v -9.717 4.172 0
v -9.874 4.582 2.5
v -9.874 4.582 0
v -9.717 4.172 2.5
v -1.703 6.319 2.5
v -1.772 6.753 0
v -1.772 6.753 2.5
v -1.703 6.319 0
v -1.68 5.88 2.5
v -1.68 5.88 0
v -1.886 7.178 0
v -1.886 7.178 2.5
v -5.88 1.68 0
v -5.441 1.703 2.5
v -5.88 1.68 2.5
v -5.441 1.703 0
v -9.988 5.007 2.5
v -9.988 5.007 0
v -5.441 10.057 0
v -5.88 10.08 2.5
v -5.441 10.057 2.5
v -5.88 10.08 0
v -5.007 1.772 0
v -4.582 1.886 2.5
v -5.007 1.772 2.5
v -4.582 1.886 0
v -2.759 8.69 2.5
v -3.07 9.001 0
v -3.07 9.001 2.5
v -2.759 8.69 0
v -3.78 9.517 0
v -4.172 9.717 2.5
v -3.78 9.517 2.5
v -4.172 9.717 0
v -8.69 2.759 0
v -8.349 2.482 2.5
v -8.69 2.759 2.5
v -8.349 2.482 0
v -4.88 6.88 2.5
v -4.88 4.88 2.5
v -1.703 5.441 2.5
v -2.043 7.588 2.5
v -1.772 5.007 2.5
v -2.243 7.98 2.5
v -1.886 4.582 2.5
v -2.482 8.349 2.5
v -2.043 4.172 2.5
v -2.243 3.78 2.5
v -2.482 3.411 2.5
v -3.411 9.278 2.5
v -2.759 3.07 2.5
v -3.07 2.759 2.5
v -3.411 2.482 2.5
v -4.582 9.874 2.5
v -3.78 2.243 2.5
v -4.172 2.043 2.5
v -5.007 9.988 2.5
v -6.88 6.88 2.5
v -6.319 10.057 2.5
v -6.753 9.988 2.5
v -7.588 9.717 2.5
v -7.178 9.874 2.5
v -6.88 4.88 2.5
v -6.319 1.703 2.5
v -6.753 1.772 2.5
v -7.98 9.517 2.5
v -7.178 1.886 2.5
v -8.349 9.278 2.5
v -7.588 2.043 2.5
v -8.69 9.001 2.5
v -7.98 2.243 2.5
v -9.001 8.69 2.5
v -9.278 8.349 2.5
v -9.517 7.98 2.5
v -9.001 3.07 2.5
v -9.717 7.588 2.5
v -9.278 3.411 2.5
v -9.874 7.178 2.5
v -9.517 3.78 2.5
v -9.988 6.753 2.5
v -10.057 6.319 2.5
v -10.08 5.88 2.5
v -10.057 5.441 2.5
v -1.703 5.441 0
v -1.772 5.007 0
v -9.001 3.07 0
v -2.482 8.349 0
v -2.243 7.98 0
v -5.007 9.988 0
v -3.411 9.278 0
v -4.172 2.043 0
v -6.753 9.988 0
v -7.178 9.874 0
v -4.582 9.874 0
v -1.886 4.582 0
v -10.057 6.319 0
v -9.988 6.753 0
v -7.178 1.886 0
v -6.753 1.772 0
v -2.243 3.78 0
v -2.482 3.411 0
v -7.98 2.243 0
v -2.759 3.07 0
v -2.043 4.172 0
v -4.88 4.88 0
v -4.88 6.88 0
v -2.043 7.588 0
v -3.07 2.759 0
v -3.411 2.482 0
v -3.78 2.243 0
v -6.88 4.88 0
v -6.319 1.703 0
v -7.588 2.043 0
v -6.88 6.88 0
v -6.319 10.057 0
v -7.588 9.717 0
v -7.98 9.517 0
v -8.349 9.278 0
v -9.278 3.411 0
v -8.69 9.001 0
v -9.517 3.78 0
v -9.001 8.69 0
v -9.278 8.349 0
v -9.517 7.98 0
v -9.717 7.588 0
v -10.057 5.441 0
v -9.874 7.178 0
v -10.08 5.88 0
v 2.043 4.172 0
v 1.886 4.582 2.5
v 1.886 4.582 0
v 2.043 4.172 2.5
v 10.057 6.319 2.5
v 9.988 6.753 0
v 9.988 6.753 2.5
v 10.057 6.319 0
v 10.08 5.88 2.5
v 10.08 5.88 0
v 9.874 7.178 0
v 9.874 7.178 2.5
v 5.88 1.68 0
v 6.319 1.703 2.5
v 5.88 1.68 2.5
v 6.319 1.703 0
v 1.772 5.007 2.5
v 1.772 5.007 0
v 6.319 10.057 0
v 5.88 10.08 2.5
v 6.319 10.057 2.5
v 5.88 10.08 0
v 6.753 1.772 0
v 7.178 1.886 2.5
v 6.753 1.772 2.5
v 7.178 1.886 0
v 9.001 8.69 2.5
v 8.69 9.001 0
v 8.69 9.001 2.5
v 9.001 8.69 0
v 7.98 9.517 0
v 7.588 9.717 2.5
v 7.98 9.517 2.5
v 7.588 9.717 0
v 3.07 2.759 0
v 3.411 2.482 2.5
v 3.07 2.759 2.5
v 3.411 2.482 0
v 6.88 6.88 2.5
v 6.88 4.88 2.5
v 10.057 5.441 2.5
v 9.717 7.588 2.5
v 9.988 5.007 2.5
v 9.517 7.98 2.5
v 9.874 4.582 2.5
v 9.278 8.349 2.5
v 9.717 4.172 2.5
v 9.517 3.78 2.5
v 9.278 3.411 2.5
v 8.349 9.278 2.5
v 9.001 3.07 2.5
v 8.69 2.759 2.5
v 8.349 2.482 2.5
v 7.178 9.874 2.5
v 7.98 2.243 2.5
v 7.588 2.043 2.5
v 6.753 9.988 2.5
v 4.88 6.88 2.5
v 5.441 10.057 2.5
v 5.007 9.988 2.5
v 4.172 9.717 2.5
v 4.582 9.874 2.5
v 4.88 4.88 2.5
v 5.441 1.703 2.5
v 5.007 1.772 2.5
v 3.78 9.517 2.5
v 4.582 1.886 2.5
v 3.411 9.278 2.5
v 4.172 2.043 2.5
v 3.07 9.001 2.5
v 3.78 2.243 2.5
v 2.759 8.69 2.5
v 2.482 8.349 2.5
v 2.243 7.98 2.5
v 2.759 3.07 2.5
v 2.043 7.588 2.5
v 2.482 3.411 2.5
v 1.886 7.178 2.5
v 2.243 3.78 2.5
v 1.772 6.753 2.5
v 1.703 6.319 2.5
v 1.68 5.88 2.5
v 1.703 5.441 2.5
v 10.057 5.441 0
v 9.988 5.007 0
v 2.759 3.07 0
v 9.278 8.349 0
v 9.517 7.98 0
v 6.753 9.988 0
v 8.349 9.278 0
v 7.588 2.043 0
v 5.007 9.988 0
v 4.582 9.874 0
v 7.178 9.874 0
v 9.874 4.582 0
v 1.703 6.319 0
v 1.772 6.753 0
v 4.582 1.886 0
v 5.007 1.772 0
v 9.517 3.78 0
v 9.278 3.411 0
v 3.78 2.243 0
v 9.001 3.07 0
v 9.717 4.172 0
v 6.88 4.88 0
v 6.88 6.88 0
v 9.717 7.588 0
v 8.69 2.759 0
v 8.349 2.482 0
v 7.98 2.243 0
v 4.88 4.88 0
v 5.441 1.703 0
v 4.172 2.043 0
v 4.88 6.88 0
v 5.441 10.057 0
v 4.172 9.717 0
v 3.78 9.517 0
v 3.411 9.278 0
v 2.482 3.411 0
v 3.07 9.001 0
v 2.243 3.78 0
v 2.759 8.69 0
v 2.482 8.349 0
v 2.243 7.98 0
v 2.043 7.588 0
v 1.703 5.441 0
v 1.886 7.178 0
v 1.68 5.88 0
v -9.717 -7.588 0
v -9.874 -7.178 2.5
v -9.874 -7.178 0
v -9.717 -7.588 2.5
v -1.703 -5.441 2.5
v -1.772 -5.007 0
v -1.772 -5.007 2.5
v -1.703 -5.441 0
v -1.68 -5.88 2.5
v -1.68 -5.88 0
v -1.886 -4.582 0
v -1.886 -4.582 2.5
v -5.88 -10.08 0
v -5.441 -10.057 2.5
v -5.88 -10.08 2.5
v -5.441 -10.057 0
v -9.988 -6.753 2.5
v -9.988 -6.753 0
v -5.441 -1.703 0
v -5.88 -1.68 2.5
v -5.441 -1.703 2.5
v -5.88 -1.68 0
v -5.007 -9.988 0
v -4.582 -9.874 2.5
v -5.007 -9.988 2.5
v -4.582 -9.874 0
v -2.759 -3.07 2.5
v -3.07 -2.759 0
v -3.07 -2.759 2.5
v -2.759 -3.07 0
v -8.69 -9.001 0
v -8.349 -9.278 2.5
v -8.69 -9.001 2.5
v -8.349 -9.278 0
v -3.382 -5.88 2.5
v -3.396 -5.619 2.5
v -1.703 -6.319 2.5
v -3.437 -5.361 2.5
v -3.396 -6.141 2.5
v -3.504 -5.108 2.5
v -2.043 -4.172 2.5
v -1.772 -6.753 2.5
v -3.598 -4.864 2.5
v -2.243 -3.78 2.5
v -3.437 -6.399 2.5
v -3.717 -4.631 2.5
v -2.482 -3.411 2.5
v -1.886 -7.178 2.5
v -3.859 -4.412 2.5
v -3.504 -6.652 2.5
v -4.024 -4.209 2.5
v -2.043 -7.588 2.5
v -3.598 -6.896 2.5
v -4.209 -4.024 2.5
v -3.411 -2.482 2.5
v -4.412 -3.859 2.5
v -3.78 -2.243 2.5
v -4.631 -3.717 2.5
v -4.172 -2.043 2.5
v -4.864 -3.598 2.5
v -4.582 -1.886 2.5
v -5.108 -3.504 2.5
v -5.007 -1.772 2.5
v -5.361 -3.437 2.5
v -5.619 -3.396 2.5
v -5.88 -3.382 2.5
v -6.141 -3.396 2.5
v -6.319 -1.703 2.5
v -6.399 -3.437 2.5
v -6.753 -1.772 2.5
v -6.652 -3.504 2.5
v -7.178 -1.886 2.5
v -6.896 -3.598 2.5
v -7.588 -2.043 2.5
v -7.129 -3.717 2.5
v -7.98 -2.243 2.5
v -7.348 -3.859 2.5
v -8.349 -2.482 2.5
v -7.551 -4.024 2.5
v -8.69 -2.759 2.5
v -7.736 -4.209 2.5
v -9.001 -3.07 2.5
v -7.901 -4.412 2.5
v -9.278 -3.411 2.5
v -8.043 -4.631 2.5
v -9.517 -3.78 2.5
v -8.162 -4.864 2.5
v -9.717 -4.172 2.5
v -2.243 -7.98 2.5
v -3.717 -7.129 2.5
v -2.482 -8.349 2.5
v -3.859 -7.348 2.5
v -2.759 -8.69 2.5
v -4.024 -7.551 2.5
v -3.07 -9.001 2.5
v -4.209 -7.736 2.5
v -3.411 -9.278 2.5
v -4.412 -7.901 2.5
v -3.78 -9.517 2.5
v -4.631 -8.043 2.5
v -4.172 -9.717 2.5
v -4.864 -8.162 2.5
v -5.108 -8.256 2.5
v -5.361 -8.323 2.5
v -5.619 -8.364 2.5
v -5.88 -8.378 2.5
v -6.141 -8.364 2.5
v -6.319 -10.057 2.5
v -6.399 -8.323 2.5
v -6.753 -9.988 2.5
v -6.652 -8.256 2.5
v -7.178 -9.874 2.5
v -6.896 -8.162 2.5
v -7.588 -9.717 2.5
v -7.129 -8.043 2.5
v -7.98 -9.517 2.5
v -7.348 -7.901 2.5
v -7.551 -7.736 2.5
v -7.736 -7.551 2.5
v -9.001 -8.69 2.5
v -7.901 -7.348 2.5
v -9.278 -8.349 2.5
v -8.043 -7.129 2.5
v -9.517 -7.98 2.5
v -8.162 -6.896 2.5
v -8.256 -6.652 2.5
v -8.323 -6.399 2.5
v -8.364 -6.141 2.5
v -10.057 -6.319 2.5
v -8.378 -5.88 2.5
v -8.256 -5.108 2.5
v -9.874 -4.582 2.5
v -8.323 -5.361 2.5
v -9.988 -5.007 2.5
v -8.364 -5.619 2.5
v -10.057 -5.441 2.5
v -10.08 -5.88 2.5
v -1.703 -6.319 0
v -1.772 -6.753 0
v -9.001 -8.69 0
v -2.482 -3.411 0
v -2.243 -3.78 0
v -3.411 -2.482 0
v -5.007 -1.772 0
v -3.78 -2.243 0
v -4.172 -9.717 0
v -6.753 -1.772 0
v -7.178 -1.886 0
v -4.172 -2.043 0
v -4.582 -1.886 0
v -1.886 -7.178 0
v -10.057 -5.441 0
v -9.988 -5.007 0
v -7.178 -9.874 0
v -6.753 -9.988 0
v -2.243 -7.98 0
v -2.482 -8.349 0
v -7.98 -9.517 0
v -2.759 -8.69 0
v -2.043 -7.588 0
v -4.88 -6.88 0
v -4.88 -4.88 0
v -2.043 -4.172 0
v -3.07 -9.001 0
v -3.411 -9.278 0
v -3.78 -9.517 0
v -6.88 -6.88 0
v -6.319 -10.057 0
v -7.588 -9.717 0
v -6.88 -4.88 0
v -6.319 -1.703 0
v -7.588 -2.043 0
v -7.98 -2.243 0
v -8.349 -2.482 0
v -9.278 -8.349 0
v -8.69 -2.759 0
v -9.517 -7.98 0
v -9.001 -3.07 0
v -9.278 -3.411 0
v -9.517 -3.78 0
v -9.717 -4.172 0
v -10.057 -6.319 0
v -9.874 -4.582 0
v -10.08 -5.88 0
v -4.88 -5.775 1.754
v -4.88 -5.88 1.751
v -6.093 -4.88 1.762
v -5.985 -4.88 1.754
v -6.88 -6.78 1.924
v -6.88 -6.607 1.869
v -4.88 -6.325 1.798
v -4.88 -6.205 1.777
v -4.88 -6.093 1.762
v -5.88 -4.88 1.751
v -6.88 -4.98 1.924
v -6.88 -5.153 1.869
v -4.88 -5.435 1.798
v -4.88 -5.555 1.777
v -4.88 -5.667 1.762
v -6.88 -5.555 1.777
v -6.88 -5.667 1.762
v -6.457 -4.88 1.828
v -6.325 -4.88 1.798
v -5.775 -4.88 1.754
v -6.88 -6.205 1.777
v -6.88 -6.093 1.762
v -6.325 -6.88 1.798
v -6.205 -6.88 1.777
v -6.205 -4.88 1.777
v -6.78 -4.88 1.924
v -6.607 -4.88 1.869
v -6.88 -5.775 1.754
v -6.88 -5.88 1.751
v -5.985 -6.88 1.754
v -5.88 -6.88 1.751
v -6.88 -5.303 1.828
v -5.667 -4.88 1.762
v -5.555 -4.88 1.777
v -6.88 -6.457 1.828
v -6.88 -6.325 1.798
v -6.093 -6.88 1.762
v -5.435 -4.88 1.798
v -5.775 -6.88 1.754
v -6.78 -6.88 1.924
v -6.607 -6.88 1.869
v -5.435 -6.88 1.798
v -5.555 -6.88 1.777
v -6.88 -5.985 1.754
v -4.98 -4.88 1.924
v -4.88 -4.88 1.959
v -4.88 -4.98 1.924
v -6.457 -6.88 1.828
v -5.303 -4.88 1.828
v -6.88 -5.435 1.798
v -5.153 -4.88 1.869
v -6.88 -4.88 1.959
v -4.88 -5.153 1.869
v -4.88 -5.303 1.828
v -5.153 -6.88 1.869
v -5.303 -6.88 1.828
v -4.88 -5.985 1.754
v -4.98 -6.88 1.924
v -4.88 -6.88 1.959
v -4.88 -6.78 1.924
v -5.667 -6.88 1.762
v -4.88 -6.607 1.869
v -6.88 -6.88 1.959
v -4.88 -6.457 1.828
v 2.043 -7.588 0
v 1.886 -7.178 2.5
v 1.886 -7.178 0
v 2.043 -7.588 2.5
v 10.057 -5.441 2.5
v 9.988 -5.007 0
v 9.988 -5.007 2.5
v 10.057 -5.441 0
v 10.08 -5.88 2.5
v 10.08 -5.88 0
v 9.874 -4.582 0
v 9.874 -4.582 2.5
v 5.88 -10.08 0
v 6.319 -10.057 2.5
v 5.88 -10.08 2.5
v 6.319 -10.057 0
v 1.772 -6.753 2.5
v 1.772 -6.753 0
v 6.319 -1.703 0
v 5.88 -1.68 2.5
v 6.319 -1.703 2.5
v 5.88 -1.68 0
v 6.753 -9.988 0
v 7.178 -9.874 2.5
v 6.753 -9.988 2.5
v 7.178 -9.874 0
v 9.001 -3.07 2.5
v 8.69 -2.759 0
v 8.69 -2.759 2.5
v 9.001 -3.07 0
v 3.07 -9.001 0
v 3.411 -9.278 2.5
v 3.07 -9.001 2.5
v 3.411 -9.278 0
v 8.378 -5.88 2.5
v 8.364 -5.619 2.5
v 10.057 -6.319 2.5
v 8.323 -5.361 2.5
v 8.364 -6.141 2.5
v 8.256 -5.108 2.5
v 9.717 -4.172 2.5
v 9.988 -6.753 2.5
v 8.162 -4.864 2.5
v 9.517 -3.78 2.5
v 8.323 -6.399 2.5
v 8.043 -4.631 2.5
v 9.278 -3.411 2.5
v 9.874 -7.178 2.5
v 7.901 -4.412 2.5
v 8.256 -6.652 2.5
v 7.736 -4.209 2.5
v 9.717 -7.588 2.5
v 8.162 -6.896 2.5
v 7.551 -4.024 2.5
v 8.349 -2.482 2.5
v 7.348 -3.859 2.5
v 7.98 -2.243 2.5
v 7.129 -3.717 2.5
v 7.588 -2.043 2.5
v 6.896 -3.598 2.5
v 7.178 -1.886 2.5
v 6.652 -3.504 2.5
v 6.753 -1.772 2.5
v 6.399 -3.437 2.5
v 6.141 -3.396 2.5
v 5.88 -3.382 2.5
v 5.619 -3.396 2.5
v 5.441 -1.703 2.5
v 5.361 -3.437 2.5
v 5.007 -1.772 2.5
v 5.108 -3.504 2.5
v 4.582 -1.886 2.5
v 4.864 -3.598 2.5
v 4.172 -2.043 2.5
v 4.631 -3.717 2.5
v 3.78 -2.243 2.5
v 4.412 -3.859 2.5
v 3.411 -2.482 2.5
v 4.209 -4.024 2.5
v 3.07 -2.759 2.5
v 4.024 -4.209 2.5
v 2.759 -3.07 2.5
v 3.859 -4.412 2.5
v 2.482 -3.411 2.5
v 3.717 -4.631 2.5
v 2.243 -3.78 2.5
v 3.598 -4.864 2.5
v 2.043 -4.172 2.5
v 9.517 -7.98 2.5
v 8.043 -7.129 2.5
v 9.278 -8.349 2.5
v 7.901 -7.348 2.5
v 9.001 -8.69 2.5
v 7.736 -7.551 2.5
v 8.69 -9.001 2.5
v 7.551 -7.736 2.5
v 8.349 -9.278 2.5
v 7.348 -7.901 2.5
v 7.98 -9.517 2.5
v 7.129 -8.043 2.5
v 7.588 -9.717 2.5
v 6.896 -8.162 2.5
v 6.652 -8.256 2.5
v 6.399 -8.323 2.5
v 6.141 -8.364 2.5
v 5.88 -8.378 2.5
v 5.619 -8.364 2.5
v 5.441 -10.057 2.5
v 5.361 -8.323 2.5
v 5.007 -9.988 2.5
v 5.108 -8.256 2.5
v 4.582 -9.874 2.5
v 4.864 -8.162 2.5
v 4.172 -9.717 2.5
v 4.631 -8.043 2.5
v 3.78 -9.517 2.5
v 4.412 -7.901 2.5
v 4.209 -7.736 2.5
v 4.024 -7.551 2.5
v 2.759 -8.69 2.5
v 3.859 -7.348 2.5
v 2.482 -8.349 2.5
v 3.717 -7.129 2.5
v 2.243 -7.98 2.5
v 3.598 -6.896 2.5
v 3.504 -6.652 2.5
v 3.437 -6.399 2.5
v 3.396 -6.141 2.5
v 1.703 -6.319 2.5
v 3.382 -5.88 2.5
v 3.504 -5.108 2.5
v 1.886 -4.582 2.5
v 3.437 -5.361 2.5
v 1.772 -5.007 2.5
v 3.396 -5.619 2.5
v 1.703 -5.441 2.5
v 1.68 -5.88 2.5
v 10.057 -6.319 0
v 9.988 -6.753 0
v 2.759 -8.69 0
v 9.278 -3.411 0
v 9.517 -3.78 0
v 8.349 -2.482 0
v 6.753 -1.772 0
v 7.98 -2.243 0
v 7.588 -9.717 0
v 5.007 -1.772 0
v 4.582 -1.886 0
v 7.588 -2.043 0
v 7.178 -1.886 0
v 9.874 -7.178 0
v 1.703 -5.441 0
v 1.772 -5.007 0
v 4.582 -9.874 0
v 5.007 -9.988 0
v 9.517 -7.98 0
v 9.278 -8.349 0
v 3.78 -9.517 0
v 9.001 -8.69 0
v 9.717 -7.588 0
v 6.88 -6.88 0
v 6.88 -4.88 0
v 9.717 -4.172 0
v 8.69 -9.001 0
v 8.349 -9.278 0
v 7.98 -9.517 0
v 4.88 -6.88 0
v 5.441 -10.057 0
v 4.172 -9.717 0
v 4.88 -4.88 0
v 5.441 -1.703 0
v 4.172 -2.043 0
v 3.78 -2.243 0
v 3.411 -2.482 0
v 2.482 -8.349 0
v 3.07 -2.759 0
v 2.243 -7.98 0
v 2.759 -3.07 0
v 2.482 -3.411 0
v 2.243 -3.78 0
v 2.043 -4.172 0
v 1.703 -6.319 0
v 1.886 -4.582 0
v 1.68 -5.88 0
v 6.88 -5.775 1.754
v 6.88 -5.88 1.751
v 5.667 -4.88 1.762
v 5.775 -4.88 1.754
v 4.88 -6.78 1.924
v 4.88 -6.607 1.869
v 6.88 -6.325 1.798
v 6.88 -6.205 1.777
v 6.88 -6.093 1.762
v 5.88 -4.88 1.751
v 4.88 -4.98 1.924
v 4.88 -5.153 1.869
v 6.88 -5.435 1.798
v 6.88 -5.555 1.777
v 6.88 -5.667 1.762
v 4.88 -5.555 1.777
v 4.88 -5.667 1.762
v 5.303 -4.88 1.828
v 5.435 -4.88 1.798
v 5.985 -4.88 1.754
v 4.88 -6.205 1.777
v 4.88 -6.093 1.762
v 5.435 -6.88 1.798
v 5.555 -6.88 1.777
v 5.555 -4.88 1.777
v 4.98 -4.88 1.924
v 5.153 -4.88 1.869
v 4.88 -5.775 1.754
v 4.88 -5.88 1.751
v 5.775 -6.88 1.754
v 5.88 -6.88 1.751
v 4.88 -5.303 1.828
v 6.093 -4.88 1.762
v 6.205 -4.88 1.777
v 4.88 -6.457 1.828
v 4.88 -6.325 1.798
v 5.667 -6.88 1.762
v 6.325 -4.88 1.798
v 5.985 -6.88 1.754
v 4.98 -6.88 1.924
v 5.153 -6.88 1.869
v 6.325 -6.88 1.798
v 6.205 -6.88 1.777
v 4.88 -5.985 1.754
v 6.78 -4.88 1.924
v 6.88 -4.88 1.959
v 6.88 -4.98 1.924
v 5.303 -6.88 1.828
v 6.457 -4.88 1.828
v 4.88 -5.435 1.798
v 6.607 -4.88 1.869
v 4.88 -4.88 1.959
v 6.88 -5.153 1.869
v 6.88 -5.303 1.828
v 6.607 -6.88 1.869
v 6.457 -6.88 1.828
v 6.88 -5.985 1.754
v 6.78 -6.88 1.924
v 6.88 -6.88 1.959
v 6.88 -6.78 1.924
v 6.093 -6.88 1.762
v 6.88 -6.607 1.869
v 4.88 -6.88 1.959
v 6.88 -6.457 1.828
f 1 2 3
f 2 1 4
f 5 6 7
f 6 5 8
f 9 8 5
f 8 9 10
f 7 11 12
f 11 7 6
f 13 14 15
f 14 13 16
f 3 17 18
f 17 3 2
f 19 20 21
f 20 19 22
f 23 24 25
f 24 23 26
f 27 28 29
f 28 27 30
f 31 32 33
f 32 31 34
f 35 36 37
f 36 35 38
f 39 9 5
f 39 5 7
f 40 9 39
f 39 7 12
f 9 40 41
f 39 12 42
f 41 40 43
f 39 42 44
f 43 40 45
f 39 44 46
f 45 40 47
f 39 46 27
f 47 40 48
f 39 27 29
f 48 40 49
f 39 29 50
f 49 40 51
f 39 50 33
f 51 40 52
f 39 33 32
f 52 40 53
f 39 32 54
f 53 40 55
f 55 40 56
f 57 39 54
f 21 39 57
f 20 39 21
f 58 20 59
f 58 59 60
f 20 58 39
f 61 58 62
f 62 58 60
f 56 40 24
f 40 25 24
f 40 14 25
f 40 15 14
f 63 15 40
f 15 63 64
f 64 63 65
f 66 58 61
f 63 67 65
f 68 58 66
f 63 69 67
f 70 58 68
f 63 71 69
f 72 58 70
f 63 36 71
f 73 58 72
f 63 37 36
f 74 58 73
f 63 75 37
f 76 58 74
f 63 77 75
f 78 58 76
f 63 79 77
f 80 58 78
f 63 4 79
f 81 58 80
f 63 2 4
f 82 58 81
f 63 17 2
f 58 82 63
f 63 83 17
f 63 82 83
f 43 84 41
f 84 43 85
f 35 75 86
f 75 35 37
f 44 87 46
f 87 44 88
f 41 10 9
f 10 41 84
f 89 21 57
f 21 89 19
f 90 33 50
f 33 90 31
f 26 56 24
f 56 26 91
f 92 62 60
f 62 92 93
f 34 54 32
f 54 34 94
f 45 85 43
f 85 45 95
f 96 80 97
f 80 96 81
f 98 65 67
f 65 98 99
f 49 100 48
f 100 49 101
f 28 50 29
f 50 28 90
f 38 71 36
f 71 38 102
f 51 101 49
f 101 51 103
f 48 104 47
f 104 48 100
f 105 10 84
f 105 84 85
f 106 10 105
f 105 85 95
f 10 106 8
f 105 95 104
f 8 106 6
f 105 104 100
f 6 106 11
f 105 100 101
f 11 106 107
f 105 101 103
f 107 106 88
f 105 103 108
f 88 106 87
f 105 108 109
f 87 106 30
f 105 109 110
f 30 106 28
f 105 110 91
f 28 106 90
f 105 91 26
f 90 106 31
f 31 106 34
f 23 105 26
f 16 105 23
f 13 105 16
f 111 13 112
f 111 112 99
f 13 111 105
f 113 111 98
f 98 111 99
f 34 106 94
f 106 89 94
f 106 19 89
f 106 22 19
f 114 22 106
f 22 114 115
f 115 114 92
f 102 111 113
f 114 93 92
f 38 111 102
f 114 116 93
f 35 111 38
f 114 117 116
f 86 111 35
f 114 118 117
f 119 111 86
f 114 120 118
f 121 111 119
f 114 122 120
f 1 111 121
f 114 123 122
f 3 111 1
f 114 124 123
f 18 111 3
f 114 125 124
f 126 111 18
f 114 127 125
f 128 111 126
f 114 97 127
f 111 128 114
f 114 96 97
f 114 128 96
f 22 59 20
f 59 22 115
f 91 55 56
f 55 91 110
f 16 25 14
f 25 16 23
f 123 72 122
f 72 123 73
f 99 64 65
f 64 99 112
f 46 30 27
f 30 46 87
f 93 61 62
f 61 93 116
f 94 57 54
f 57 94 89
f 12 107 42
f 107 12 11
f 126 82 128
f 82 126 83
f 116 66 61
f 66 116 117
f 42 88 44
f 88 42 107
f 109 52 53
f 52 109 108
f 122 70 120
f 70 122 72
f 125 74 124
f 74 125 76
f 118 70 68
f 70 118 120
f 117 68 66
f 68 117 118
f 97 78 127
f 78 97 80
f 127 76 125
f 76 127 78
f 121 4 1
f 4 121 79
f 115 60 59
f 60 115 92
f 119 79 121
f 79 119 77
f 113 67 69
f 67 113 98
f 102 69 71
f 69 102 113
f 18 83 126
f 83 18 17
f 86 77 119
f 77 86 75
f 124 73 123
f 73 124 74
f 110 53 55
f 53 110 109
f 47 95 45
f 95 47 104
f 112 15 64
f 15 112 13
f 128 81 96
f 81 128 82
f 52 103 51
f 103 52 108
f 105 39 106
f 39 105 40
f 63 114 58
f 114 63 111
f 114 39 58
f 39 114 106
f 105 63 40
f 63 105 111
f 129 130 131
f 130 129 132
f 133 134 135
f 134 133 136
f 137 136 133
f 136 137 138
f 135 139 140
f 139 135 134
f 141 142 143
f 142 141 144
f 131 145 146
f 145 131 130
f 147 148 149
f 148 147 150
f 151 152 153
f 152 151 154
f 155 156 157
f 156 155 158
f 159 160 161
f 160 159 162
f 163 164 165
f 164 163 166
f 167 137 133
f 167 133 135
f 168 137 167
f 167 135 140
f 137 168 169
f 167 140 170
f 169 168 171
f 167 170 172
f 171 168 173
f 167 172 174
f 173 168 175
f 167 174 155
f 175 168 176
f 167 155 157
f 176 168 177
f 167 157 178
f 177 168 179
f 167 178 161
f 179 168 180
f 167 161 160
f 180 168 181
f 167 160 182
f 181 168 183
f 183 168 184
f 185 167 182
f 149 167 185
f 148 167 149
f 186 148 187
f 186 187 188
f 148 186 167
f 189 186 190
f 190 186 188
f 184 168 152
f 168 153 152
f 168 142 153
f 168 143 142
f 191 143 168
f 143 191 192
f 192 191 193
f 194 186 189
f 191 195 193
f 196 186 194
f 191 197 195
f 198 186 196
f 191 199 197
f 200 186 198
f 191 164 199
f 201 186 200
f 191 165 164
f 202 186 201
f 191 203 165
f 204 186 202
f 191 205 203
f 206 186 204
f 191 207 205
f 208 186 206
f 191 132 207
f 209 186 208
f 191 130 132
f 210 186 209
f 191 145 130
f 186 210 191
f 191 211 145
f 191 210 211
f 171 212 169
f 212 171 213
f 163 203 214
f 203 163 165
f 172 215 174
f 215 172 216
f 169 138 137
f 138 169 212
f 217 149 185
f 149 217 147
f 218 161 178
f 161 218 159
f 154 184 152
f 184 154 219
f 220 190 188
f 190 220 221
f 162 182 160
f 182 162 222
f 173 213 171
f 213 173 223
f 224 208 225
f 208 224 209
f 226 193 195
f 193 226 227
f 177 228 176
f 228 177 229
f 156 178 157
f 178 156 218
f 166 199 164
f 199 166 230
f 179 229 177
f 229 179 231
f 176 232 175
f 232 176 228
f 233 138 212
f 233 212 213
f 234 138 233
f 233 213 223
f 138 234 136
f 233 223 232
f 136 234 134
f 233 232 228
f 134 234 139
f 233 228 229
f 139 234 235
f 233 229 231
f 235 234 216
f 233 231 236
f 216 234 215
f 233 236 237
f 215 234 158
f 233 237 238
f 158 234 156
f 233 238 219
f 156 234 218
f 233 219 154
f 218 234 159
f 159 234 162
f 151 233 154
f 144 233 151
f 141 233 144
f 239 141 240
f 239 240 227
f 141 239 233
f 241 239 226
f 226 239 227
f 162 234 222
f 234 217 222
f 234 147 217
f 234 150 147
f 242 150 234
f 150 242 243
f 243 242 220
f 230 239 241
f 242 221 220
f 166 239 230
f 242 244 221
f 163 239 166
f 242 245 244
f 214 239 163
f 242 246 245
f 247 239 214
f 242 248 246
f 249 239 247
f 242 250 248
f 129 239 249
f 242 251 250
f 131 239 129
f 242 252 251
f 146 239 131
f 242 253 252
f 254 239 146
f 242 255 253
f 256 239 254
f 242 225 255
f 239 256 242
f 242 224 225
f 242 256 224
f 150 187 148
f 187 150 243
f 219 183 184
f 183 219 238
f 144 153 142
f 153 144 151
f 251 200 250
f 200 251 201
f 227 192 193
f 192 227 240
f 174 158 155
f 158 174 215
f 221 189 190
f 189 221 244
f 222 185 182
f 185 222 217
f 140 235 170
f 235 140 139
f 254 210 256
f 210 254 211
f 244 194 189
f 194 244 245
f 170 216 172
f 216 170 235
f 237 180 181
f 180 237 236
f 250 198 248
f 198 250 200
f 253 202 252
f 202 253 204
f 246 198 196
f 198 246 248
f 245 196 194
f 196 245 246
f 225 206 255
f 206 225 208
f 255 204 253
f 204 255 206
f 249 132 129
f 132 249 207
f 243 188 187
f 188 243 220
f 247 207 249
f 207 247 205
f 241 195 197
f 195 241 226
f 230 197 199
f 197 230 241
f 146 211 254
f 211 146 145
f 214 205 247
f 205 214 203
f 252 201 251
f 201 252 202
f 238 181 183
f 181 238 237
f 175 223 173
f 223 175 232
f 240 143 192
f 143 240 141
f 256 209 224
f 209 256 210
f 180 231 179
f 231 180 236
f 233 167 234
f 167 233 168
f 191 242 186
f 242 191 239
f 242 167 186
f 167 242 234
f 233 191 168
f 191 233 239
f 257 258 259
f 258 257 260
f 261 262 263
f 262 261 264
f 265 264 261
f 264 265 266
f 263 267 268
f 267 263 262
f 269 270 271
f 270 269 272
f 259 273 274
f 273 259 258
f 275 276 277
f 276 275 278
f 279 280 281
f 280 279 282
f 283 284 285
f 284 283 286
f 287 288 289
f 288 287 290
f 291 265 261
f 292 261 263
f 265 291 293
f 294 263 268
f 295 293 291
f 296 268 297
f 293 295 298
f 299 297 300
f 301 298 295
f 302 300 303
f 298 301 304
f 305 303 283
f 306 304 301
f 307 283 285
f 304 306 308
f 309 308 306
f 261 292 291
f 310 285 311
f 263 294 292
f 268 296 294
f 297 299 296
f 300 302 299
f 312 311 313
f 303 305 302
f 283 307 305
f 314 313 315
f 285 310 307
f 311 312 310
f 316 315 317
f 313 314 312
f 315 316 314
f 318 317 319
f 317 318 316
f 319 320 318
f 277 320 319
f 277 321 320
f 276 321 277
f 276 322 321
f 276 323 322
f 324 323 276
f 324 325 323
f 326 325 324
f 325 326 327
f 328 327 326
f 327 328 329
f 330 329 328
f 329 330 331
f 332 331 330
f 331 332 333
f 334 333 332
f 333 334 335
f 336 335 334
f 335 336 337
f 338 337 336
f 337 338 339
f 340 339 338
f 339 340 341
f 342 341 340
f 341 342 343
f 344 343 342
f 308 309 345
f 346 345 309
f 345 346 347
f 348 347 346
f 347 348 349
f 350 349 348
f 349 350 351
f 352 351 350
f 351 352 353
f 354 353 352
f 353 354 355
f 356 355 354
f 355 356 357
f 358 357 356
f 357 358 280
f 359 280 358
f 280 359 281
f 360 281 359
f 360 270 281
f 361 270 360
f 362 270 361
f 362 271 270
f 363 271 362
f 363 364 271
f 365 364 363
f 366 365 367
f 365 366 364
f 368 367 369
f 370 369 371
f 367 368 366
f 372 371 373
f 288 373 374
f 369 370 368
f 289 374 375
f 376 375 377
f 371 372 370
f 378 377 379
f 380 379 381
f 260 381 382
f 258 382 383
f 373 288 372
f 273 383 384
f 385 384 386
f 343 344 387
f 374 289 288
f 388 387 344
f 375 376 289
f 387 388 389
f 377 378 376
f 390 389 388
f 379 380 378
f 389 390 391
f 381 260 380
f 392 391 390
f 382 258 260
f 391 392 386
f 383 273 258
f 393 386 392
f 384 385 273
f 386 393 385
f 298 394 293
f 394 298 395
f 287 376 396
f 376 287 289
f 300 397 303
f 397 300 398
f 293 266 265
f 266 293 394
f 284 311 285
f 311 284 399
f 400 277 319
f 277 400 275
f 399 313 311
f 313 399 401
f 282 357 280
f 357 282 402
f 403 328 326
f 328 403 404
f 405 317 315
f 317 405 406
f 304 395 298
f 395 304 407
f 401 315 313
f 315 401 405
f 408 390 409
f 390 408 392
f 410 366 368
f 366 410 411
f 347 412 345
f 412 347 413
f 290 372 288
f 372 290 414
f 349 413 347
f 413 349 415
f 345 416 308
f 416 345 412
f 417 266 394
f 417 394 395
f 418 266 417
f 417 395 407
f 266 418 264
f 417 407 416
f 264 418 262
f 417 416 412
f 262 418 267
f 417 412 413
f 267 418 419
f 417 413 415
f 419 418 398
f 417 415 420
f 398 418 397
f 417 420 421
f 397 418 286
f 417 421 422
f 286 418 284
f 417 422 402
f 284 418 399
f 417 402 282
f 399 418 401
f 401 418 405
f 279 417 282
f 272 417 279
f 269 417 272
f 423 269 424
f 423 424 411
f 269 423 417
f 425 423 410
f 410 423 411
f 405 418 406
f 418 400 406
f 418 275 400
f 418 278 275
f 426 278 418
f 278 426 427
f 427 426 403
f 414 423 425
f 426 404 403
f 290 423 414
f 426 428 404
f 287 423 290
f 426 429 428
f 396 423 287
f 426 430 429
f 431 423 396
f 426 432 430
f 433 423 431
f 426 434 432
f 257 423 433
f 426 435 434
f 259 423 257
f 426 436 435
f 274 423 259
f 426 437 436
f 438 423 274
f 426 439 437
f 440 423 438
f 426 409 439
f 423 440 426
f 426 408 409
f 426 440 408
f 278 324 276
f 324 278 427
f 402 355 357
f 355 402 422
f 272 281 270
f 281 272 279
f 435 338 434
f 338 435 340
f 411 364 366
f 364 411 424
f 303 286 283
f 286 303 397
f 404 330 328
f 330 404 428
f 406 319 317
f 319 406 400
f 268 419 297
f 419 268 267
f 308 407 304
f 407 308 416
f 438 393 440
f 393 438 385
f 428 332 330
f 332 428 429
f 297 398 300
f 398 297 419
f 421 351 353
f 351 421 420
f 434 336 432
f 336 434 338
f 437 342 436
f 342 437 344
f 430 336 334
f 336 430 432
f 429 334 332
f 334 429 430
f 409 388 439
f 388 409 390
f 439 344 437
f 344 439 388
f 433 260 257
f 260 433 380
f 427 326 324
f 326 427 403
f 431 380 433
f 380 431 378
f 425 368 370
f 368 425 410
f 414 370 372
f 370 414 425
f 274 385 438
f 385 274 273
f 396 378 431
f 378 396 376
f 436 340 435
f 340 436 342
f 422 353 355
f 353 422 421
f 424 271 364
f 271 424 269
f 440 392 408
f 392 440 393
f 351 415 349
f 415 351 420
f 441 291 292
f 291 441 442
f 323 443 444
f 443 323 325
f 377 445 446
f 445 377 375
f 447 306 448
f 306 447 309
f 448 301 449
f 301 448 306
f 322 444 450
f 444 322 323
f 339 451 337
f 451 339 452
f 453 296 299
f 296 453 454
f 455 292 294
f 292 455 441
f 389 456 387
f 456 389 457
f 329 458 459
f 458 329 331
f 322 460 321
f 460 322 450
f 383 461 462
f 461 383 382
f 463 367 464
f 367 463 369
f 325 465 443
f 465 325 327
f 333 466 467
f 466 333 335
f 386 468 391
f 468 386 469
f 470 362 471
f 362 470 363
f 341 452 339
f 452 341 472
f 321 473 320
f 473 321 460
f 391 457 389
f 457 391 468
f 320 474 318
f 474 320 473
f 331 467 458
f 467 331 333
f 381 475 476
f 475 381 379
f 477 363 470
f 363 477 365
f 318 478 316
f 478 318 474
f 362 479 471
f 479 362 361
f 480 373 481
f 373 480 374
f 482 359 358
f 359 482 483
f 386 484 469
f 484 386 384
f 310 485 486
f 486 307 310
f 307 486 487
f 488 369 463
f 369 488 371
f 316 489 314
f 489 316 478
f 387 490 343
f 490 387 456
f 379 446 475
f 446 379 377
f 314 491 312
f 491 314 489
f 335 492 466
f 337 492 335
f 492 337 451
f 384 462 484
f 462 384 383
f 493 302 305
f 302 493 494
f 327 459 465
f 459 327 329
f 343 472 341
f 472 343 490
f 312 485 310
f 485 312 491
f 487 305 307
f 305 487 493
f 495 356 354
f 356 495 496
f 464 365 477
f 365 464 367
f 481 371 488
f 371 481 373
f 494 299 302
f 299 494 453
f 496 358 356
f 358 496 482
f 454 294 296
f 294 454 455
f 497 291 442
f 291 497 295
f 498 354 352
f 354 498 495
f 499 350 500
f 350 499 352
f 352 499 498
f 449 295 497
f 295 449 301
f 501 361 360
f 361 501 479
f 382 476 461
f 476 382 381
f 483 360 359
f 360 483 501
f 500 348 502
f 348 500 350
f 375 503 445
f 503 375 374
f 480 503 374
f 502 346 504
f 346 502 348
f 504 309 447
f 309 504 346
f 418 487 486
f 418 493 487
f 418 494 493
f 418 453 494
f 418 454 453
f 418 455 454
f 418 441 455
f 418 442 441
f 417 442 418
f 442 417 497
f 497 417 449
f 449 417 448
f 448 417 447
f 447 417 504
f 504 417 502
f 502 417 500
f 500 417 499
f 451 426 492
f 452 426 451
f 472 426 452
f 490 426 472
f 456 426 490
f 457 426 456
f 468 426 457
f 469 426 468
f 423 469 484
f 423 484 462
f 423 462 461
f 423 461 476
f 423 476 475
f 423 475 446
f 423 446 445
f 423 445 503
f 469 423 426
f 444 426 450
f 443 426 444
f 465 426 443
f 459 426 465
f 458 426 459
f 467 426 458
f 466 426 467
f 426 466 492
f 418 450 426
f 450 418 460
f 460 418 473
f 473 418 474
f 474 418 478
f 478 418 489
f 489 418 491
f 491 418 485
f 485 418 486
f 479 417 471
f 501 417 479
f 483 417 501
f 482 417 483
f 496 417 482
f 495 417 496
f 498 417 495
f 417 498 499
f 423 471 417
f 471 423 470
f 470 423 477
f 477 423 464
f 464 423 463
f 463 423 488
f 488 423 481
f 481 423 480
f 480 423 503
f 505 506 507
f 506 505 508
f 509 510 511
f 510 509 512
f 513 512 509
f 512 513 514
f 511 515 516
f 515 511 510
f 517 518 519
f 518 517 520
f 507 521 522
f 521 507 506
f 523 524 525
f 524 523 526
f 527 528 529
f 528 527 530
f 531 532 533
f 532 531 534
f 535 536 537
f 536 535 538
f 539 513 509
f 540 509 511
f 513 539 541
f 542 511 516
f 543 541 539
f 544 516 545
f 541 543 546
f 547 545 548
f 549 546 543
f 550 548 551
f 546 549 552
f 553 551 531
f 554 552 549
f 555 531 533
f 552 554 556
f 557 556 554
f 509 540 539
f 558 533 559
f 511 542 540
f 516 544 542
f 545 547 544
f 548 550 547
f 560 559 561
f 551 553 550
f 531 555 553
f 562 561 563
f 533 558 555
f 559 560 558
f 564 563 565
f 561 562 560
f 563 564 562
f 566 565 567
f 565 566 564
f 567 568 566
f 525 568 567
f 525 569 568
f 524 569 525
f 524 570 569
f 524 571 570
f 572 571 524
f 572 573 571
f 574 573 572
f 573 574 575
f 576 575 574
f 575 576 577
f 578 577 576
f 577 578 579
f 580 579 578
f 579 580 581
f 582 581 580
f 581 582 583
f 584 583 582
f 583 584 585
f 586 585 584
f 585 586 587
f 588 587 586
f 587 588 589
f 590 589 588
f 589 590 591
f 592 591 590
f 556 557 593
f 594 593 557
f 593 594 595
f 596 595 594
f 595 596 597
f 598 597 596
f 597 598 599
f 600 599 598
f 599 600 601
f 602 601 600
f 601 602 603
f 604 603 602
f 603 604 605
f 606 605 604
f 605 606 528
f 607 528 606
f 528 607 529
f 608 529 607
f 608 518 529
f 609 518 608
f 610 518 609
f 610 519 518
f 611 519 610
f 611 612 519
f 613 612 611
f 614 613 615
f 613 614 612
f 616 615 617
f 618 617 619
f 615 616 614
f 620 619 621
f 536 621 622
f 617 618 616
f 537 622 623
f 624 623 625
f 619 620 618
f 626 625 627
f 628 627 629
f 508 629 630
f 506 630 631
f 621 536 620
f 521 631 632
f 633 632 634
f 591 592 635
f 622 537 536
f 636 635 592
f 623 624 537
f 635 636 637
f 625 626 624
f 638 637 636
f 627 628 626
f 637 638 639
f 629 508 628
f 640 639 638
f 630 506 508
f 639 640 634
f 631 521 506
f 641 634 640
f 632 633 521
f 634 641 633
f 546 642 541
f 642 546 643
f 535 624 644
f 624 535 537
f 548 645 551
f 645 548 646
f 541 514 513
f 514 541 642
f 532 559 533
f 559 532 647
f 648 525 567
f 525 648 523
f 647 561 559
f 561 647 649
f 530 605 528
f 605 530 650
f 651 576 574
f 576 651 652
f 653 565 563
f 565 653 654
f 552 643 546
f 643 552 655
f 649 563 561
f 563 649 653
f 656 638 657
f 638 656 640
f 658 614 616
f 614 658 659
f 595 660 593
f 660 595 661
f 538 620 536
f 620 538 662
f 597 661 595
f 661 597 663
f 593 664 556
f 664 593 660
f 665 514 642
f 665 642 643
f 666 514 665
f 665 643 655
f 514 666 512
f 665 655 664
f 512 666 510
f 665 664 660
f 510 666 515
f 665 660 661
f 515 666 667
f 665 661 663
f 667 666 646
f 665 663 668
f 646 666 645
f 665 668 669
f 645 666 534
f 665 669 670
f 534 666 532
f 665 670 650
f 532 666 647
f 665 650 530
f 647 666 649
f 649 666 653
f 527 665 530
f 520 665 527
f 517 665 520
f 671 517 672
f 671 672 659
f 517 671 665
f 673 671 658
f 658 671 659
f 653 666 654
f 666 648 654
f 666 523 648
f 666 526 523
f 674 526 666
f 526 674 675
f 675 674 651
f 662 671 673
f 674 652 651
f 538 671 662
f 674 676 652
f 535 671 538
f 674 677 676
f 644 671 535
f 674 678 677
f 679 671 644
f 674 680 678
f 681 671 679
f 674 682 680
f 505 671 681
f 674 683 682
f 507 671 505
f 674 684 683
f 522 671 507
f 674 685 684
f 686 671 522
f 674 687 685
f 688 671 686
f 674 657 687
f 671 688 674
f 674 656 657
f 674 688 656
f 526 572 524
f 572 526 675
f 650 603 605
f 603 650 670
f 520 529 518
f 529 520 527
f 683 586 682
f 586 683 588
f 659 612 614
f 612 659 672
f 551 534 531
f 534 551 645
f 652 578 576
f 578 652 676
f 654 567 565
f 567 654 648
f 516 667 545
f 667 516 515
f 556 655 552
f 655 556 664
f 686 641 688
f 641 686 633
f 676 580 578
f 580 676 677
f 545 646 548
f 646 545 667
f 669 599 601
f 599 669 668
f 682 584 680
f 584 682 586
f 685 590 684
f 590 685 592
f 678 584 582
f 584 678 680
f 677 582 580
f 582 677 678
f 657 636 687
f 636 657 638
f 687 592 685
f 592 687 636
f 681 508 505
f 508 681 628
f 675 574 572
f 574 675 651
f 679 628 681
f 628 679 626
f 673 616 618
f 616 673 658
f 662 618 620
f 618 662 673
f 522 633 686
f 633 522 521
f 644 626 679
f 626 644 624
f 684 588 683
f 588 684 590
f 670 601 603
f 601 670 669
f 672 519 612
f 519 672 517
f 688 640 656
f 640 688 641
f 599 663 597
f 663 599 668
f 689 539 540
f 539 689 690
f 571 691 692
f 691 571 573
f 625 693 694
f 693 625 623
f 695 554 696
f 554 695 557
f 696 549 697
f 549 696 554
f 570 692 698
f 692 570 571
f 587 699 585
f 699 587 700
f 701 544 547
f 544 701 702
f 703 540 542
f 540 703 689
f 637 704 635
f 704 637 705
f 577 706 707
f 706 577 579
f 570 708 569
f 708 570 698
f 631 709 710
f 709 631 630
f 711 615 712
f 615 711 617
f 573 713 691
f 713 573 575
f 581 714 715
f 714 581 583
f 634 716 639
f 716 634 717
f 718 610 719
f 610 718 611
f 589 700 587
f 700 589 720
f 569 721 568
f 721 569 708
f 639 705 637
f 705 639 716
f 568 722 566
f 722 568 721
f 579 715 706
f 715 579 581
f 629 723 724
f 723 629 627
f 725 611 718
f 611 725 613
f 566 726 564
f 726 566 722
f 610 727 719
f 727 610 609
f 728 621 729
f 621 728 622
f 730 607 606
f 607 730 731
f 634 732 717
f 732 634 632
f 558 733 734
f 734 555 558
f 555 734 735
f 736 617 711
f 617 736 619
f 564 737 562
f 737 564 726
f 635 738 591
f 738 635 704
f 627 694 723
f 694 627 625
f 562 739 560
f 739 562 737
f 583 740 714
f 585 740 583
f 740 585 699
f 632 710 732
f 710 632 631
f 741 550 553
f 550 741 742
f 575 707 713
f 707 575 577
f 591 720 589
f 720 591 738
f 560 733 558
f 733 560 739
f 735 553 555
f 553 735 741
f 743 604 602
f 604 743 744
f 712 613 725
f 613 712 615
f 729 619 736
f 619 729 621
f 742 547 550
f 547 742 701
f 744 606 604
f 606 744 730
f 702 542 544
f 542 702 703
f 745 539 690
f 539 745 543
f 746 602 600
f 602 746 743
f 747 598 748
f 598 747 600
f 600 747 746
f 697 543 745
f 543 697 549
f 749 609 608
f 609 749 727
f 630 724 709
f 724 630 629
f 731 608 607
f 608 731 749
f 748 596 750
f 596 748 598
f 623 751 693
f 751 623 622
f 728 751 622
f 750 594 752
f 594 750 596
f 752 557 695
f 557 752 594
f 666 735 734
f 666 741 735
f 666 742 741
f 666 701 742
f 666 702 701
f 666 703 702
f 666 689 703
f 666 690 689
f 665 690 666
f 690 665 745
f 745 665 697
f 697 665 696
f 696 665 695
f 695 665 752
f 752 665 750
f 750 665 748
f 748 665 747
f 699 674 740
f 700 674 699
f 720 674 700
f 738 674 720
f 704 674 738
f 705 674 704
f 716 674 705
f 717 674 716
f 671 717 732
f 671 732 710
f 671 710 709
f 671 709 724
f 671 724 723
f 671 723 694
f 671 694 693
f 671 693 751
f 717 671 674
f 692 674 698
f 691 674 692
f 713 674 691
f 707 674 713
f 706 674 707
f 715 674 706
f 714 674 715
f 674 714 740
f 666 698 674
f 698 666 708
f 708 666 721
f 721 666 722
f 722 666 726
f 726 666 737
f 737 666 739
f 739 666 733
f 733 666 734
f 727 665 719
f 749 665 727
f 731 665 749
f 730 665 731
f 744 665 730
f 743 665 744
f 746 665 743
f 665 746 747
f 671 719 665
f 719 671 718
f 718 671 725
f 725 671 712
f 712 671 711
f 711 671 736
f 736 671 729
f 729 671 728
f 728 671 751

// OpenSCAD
/* Wheels for Vidga rail carriage */
AXIS_DIAMETER    = 2;
DIAMETER         = 8.4;
THICKNESS        = 2.5;
CHAMFER_HEIGHT   = 1;
CHAMFER_DIAMETER = 4;
CHAMFER_SHIFT    = .125*2;

ATOM             = 0.001;
$fn = 60;

module wheel(chamfer=false) {
    difference() {
        cylinder(d=DIAMETER, h=THICKNESS);
        
        if (chamfer)
            translate([0, 0, THICKNESS-1+ATOM - CHAMFER_SHIFT]) 
            cylinder(d2=CHAMFER_DIAMETER*2, d1=0, h=CHAMFER_HEIGHT*2);
        
        cube([AXIS_DIAMETER, AXIS_DIAMETER, THICKNESS*4], center=true);
    }
}

d = DIAMETER *.7;
for (x=[-d, d])
    for (y=[-d, d])
        translate([x, y, 0])
        wheel(y<0);
